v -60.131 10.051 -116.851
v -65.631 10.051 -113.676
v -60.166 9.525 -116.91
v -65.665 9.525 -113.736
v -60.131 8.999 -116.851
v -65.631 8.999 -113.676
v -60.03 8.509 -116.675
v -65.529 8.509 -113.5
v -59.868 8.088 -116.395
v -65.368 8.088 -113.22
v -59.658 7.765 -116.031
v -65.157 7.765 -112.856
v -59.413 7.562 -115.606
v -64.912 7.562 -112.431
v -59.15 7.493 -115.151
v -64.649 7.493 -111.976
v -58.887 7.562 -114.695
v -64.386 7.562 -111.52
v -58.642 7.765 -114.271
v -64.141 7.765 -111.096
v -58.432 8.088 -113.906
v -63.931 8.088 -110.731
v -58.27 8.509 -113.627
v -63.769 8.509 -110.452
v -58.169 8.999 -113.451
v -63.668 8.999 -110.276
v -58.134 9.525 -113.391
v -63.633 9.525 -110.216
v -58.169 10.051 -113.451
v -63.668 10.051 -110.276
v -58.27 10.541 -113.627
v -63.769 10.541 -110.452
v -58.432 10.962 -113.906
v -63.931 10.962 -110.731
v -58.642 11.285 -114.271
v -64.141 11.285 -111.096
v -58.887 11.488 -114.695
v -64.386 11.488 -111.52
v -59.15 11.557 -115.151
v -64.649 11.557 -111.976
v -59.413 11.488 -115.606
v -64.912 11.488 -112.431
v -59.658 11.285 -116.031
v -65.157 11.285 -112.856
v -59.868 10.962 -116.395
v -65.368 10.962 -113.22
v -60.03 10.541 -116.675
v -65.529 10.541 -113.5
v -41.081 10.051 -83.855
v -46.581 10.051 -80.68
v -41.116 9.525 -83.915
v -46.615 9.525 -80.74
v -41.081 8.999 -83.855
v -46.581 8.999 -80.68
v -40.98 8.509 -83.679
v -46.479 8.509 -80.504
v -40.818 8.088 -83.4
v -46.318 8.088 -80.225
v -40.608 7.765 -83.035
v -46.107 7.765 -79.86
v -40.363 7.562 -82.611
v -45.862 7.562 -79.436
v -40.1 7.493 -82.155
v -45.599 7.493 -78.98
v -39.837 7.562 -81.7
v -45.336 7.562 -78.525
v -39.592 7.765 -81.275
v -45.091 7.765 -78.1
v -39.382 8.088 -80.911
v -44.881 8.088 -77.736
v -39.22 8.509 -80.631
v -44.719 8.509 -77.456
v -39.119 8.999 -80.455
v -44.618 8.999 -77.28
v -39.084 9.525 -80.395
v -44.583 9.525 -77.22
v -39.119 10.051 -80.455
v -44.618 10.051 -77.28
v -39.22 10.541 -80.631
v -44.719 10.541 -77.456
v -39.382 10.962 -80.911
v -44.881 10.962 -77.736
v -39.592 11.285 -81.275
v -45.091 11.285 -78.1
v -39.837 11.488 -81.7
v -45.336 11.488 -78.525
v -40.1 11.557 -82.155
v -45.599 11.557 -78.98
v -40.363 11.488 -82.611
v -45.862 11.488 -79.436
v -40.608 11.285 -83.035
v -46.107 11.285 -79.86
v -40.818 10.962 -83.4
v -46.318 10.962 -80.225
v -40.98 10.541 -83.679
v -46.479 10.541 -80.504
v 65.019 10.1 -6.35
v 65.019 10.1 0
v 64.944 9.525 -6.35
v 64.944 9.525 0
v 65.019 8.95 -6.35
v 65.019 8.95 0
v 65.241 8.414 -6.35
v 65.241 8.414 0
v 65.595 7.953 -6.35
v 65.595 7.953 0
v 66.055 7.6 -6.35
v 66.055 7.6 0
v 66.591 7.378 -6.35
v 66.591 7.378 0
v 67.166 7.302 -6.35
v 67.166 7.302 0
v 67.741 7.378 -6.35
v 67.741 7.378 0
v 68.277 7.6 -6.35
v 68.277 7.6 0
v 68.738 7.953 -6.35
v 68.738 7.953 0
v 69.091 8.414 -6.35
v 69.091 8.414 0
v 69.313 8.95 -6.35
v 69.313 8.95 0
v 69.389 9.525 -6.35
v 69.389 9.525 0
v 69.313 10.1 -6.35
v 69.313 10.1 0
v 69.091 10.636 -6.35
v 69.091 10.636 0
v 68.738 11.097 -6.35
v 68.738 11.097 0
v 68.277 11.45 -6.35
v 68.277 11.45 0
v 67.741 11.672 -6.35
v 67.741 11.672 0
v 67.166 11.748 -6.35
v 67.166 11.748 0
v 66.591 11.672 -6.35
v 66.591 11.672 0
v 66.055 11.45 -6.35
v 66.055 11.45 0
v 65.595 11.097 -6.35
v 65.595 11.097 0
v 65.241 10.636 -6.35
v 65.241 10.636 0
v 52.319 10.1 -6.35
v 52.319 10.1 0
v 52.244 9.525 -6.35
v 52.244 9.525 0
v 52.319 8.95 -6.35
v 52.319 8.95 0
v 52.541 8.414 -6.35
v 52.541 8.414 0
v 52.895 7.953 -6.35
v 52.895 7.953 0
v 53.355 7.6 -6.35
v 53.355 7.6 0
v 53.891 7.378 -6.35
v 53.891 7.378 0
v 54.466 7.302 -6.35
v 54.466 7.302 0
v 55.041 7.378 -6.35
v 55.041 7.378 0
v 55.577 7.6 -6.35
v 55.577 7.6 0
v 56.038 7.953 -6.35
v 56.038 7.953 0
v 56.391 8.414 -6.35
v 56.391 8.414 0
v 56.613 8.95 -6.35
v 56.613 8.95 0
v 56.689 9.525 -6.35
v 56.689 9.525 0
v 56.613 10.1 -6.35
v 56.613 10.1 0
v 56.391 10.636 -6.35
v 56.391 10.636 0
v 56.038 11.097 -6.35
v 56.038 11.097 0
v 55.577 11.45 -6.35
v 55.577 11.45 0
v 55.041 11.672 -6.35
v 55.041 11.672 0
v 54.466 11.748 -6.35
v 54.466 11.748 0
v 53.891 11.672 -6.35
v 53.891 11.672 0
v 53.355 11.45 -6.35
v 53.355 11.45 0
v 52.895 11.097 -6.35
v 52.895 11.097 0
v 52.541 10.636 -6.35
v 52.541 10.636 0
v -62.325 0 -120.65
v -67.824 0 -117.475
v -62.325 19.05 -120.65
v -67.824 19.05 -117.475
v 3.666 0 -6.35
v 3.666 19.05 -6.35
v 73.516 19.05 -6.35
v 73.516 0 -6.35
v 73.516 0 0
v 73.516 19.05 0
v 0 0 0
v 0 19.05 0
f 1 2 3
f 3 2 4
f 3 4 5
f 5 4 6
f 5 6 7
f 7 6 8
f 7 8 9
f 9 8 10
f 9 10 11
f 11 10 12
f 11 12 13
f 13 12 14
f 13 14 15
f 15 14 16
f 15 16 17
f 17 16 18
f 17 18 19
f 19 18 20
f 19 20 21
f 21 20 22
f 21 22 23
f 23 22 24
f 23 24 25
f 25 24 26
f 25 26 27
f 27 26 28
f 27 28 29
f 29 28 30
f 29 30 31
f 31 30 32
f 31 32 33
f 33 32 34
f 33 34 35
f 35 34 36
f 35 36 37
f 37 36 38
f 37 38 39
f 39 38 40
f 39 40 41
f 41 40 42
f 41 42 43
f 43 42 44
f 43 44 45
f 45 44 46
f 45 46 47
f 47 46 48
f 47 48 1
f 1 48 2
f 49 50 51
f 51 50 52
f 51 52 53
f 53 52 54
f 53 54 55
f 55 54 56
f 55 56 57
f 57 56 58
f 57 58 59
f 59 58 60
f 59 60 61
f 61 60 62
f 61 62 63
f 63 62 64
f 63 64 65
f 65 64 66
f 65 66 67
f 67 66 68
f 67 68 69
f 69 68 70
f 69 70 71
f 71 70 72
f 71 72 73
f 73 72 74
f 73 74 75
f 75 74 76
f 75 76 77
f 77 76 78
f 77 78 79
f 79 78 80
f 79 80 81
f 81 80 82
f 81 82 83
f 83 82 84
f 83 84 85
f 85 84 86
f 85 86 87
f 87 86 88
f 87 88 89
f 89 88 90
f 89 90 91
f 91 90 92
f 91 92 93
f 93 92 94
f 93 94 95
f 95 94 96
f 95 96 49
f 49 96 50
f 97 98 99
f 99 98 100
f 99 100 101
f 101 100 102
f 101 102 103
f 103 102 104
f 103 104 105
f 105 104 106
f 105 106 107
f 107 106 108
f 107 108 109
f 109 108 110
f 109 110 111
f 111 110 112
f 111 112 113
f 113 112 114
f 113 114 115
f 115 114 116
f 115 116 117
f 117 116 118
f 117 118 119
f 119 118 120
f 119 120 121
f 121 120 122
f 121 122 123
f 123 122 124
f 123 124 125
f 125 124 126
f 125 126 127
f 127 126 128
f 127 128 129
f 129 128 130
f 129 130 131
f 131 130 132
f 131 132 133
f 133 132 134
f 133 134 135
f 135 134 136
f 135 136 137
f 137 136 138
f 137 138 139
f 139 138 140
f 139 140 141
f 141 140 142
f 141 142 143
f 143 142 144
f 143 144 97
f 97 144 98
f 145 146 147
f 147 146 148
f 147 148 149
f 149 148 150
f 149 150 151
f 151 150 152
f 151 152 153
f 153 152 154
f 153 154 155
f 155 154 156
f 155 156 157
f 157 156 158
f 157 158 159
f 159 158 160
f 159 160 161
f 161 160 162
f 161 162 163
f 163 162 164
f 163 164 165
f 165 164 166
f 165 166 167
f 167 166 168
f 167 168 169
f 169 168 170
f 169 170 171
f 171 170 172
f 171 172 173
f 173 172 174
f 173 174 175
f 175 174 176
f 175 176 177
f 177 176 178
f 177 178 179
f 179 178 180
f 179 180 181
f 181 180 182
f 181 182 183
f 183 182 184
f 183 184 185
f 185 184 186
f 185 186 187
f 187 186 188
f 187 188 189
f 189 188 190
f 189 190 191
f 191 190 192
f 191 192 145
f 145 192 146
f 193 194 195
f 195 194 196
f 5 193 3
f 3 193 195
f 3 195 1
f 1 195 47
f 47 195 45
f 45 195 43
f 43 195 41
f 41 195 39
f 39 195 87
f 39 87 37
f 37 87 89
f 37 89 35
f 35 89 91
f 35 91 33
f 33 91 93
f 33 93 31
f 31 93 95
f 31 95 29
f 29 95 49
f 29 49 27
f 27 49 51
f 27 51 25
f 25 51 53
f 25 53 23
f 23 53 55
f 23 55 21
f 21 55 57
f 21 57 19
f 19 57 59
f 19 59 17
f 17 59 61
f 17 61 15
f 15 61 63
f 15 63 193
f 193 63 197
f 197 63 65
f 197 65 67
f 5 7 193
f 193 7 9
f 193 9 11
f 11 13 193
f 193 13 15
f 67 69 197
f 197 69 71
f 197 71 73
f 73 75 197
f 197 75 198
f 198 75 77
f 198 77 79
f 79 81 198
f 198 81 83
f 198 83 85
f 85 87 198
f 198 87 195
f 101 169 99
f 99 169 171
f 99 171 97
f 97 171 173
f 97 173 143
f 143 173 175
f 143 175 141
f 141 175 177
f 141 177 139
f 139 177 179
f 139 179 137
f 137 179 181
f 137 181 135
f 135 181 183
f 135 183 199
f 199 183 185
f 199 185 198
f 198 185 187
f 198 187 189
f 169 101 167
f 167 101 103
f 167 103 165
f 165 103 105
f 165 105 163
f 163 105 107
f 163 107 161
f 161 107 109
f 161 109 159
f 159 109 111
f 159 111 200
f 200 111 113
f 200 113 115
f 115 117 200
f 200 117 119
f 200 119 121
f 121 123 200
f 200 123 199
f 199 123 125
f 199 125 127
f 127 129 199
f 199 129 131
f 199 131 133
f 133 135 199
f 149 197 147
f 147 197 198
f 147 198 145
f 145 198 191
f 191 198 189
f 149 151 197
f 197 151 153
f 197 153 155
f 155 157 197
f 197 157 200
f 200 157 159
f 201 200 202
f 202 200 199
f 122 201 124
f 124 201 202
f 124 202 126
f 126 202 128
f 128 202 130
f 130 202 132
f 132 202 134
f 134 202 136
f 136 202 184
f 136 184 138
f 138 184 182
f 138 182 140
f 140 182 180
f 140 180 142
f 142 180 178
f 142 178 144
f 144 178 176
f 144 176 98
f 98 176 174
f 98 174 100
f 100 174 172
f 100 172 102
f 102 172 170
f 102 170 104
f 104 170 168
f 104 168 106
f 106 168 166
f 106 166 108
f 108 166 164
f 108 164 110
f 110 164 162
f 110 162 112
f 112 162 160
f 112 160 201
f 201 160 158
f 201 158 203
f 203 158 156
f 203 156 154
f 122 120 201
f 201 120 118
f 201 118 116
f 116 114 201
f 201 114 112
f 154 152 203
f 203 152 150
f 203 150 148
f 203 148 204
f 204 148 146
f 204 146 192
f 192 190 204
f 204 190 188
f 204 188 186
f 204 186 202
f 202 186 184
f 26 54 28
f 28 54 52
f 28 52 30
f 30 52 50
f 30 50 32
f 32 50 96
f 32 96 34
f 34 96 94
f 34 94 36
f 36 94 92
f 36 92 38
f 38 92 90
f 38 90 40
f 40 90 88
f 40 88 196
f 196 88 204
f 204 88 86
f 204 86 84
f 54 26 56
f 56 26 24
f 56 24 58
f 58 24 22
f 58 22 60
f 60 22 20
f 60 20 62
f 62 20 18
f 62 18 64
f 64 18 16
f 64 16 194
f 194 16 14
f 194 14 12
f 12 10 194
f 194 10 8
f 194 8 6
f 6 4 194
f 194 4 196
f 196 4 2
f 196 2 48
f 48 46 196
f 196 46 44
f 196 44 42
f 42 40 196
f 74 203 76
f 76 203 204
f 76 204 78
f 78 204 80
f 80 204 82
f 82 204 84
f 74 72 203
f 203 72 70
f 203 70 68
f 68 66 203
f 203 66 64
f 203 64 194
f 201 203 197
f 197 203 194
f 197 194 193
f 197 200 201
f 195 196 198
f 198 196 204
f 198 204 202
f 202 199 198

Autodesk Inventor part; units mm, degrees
ref_plane "YZ Plane" through (0, 0, 0) normal (1, 0, 0) x (0, 1, 0)
ref_plane "XZ Plane" through (0, 0, 0) normal (0, 1, 0) x (-1, 0, 0)
ref_plane "XY Plane" through (0, 0, 0) normal (0, 0, 1) x (1, 0, 0)
sketch "Sketch1" plane through (0, 0, 0) normal (0, 1, 0) x (-1, 0, 0)
  line L0 (0, 0) -> (67.8242, -117.475)
  line L1 (0, 0) -> (135.6484, 0) construction
  line L2 (67.8242, -117.475) -> (62.325, -120.65)
  line L3 (62.325, -120.65) -> (-3.6662, -6.35)
  line L4 (-0.56, 0) -> (-73.5162, 0)
  line L5 (-73.5162, 0) -> (-73.5162, -6.35)
  line L6 (-3.6662, -6.35) -> (-73.5162, -6.35)
  line L7 (0, 0) -> (-0.56, 0)
  dimension "d0" = 60
  dimension "d2" = 6.35
  dimension "d3" = 6.35
  dimension "d4" = 0
  dimension "d5" = 114.3
  dimension "d6" = 69.85
extrude "Extrusion1" add sketch "Sketch1" along normal blind 19.05
sketch "Sketch2" plane through (0, 0, 0) normal (0, 0, 1) x (1, 0, 0)
  line L0 (73.5162, 0) -> (0, 0) projected
  line L1 (73.5162, 0) -> (73.5162, 19.05) projected
  line L2 (0, 19.05) -> (73.5162, 19.05) projected
  line L3 (0, 0) -> (0, 19.05) projected
  point P0 (67.1662, 9.525)
  point P1 (54.4662, 9.525)
  dimension "d9" = 6.35
  dimension "d10" = 19.05
  dimension "d11" = 9.525
  dimension "d12" = 9.525
hole "Hole1" at (67.1662, 9.525, 0) at (54.4662, 9.525, 0) direction (0, 0, -1) diameter 4.445 end through all
sketch "Sketch3" plane through (0, 0, 0) normal (-0.8660254, 0, 0.5) x (0.5, 0, 0.8660254)
  line L0 (0, 0) -> (-135.6484, 0) projected
  line L1 (0, 0) -> (0, 19.05) projected
  line L2 (-135.6484, 19.05) -> (0, 19.05) projected
  line L3 (-135.6484, 0) -> (-135.6484, 19.05) projected
  point P0 (-129.2984, 9.525)
  point P1 (-91.1984, 9.525)
  dimension "d20" = 6.35
  dimension "d21" = 44.45
  dimension "d22" = 9.525
  dimension "d23" = 9.525
hole "Hole2" at (-64.6492, 9.525, -111.9757) at (-45.5992, 9.525, -78.9802) direction (0.8660254, 0, -0.5) diameter 4.064 end through all
equation "\"d12\" = d11"
properties part number "CollectionAngleBracket"
